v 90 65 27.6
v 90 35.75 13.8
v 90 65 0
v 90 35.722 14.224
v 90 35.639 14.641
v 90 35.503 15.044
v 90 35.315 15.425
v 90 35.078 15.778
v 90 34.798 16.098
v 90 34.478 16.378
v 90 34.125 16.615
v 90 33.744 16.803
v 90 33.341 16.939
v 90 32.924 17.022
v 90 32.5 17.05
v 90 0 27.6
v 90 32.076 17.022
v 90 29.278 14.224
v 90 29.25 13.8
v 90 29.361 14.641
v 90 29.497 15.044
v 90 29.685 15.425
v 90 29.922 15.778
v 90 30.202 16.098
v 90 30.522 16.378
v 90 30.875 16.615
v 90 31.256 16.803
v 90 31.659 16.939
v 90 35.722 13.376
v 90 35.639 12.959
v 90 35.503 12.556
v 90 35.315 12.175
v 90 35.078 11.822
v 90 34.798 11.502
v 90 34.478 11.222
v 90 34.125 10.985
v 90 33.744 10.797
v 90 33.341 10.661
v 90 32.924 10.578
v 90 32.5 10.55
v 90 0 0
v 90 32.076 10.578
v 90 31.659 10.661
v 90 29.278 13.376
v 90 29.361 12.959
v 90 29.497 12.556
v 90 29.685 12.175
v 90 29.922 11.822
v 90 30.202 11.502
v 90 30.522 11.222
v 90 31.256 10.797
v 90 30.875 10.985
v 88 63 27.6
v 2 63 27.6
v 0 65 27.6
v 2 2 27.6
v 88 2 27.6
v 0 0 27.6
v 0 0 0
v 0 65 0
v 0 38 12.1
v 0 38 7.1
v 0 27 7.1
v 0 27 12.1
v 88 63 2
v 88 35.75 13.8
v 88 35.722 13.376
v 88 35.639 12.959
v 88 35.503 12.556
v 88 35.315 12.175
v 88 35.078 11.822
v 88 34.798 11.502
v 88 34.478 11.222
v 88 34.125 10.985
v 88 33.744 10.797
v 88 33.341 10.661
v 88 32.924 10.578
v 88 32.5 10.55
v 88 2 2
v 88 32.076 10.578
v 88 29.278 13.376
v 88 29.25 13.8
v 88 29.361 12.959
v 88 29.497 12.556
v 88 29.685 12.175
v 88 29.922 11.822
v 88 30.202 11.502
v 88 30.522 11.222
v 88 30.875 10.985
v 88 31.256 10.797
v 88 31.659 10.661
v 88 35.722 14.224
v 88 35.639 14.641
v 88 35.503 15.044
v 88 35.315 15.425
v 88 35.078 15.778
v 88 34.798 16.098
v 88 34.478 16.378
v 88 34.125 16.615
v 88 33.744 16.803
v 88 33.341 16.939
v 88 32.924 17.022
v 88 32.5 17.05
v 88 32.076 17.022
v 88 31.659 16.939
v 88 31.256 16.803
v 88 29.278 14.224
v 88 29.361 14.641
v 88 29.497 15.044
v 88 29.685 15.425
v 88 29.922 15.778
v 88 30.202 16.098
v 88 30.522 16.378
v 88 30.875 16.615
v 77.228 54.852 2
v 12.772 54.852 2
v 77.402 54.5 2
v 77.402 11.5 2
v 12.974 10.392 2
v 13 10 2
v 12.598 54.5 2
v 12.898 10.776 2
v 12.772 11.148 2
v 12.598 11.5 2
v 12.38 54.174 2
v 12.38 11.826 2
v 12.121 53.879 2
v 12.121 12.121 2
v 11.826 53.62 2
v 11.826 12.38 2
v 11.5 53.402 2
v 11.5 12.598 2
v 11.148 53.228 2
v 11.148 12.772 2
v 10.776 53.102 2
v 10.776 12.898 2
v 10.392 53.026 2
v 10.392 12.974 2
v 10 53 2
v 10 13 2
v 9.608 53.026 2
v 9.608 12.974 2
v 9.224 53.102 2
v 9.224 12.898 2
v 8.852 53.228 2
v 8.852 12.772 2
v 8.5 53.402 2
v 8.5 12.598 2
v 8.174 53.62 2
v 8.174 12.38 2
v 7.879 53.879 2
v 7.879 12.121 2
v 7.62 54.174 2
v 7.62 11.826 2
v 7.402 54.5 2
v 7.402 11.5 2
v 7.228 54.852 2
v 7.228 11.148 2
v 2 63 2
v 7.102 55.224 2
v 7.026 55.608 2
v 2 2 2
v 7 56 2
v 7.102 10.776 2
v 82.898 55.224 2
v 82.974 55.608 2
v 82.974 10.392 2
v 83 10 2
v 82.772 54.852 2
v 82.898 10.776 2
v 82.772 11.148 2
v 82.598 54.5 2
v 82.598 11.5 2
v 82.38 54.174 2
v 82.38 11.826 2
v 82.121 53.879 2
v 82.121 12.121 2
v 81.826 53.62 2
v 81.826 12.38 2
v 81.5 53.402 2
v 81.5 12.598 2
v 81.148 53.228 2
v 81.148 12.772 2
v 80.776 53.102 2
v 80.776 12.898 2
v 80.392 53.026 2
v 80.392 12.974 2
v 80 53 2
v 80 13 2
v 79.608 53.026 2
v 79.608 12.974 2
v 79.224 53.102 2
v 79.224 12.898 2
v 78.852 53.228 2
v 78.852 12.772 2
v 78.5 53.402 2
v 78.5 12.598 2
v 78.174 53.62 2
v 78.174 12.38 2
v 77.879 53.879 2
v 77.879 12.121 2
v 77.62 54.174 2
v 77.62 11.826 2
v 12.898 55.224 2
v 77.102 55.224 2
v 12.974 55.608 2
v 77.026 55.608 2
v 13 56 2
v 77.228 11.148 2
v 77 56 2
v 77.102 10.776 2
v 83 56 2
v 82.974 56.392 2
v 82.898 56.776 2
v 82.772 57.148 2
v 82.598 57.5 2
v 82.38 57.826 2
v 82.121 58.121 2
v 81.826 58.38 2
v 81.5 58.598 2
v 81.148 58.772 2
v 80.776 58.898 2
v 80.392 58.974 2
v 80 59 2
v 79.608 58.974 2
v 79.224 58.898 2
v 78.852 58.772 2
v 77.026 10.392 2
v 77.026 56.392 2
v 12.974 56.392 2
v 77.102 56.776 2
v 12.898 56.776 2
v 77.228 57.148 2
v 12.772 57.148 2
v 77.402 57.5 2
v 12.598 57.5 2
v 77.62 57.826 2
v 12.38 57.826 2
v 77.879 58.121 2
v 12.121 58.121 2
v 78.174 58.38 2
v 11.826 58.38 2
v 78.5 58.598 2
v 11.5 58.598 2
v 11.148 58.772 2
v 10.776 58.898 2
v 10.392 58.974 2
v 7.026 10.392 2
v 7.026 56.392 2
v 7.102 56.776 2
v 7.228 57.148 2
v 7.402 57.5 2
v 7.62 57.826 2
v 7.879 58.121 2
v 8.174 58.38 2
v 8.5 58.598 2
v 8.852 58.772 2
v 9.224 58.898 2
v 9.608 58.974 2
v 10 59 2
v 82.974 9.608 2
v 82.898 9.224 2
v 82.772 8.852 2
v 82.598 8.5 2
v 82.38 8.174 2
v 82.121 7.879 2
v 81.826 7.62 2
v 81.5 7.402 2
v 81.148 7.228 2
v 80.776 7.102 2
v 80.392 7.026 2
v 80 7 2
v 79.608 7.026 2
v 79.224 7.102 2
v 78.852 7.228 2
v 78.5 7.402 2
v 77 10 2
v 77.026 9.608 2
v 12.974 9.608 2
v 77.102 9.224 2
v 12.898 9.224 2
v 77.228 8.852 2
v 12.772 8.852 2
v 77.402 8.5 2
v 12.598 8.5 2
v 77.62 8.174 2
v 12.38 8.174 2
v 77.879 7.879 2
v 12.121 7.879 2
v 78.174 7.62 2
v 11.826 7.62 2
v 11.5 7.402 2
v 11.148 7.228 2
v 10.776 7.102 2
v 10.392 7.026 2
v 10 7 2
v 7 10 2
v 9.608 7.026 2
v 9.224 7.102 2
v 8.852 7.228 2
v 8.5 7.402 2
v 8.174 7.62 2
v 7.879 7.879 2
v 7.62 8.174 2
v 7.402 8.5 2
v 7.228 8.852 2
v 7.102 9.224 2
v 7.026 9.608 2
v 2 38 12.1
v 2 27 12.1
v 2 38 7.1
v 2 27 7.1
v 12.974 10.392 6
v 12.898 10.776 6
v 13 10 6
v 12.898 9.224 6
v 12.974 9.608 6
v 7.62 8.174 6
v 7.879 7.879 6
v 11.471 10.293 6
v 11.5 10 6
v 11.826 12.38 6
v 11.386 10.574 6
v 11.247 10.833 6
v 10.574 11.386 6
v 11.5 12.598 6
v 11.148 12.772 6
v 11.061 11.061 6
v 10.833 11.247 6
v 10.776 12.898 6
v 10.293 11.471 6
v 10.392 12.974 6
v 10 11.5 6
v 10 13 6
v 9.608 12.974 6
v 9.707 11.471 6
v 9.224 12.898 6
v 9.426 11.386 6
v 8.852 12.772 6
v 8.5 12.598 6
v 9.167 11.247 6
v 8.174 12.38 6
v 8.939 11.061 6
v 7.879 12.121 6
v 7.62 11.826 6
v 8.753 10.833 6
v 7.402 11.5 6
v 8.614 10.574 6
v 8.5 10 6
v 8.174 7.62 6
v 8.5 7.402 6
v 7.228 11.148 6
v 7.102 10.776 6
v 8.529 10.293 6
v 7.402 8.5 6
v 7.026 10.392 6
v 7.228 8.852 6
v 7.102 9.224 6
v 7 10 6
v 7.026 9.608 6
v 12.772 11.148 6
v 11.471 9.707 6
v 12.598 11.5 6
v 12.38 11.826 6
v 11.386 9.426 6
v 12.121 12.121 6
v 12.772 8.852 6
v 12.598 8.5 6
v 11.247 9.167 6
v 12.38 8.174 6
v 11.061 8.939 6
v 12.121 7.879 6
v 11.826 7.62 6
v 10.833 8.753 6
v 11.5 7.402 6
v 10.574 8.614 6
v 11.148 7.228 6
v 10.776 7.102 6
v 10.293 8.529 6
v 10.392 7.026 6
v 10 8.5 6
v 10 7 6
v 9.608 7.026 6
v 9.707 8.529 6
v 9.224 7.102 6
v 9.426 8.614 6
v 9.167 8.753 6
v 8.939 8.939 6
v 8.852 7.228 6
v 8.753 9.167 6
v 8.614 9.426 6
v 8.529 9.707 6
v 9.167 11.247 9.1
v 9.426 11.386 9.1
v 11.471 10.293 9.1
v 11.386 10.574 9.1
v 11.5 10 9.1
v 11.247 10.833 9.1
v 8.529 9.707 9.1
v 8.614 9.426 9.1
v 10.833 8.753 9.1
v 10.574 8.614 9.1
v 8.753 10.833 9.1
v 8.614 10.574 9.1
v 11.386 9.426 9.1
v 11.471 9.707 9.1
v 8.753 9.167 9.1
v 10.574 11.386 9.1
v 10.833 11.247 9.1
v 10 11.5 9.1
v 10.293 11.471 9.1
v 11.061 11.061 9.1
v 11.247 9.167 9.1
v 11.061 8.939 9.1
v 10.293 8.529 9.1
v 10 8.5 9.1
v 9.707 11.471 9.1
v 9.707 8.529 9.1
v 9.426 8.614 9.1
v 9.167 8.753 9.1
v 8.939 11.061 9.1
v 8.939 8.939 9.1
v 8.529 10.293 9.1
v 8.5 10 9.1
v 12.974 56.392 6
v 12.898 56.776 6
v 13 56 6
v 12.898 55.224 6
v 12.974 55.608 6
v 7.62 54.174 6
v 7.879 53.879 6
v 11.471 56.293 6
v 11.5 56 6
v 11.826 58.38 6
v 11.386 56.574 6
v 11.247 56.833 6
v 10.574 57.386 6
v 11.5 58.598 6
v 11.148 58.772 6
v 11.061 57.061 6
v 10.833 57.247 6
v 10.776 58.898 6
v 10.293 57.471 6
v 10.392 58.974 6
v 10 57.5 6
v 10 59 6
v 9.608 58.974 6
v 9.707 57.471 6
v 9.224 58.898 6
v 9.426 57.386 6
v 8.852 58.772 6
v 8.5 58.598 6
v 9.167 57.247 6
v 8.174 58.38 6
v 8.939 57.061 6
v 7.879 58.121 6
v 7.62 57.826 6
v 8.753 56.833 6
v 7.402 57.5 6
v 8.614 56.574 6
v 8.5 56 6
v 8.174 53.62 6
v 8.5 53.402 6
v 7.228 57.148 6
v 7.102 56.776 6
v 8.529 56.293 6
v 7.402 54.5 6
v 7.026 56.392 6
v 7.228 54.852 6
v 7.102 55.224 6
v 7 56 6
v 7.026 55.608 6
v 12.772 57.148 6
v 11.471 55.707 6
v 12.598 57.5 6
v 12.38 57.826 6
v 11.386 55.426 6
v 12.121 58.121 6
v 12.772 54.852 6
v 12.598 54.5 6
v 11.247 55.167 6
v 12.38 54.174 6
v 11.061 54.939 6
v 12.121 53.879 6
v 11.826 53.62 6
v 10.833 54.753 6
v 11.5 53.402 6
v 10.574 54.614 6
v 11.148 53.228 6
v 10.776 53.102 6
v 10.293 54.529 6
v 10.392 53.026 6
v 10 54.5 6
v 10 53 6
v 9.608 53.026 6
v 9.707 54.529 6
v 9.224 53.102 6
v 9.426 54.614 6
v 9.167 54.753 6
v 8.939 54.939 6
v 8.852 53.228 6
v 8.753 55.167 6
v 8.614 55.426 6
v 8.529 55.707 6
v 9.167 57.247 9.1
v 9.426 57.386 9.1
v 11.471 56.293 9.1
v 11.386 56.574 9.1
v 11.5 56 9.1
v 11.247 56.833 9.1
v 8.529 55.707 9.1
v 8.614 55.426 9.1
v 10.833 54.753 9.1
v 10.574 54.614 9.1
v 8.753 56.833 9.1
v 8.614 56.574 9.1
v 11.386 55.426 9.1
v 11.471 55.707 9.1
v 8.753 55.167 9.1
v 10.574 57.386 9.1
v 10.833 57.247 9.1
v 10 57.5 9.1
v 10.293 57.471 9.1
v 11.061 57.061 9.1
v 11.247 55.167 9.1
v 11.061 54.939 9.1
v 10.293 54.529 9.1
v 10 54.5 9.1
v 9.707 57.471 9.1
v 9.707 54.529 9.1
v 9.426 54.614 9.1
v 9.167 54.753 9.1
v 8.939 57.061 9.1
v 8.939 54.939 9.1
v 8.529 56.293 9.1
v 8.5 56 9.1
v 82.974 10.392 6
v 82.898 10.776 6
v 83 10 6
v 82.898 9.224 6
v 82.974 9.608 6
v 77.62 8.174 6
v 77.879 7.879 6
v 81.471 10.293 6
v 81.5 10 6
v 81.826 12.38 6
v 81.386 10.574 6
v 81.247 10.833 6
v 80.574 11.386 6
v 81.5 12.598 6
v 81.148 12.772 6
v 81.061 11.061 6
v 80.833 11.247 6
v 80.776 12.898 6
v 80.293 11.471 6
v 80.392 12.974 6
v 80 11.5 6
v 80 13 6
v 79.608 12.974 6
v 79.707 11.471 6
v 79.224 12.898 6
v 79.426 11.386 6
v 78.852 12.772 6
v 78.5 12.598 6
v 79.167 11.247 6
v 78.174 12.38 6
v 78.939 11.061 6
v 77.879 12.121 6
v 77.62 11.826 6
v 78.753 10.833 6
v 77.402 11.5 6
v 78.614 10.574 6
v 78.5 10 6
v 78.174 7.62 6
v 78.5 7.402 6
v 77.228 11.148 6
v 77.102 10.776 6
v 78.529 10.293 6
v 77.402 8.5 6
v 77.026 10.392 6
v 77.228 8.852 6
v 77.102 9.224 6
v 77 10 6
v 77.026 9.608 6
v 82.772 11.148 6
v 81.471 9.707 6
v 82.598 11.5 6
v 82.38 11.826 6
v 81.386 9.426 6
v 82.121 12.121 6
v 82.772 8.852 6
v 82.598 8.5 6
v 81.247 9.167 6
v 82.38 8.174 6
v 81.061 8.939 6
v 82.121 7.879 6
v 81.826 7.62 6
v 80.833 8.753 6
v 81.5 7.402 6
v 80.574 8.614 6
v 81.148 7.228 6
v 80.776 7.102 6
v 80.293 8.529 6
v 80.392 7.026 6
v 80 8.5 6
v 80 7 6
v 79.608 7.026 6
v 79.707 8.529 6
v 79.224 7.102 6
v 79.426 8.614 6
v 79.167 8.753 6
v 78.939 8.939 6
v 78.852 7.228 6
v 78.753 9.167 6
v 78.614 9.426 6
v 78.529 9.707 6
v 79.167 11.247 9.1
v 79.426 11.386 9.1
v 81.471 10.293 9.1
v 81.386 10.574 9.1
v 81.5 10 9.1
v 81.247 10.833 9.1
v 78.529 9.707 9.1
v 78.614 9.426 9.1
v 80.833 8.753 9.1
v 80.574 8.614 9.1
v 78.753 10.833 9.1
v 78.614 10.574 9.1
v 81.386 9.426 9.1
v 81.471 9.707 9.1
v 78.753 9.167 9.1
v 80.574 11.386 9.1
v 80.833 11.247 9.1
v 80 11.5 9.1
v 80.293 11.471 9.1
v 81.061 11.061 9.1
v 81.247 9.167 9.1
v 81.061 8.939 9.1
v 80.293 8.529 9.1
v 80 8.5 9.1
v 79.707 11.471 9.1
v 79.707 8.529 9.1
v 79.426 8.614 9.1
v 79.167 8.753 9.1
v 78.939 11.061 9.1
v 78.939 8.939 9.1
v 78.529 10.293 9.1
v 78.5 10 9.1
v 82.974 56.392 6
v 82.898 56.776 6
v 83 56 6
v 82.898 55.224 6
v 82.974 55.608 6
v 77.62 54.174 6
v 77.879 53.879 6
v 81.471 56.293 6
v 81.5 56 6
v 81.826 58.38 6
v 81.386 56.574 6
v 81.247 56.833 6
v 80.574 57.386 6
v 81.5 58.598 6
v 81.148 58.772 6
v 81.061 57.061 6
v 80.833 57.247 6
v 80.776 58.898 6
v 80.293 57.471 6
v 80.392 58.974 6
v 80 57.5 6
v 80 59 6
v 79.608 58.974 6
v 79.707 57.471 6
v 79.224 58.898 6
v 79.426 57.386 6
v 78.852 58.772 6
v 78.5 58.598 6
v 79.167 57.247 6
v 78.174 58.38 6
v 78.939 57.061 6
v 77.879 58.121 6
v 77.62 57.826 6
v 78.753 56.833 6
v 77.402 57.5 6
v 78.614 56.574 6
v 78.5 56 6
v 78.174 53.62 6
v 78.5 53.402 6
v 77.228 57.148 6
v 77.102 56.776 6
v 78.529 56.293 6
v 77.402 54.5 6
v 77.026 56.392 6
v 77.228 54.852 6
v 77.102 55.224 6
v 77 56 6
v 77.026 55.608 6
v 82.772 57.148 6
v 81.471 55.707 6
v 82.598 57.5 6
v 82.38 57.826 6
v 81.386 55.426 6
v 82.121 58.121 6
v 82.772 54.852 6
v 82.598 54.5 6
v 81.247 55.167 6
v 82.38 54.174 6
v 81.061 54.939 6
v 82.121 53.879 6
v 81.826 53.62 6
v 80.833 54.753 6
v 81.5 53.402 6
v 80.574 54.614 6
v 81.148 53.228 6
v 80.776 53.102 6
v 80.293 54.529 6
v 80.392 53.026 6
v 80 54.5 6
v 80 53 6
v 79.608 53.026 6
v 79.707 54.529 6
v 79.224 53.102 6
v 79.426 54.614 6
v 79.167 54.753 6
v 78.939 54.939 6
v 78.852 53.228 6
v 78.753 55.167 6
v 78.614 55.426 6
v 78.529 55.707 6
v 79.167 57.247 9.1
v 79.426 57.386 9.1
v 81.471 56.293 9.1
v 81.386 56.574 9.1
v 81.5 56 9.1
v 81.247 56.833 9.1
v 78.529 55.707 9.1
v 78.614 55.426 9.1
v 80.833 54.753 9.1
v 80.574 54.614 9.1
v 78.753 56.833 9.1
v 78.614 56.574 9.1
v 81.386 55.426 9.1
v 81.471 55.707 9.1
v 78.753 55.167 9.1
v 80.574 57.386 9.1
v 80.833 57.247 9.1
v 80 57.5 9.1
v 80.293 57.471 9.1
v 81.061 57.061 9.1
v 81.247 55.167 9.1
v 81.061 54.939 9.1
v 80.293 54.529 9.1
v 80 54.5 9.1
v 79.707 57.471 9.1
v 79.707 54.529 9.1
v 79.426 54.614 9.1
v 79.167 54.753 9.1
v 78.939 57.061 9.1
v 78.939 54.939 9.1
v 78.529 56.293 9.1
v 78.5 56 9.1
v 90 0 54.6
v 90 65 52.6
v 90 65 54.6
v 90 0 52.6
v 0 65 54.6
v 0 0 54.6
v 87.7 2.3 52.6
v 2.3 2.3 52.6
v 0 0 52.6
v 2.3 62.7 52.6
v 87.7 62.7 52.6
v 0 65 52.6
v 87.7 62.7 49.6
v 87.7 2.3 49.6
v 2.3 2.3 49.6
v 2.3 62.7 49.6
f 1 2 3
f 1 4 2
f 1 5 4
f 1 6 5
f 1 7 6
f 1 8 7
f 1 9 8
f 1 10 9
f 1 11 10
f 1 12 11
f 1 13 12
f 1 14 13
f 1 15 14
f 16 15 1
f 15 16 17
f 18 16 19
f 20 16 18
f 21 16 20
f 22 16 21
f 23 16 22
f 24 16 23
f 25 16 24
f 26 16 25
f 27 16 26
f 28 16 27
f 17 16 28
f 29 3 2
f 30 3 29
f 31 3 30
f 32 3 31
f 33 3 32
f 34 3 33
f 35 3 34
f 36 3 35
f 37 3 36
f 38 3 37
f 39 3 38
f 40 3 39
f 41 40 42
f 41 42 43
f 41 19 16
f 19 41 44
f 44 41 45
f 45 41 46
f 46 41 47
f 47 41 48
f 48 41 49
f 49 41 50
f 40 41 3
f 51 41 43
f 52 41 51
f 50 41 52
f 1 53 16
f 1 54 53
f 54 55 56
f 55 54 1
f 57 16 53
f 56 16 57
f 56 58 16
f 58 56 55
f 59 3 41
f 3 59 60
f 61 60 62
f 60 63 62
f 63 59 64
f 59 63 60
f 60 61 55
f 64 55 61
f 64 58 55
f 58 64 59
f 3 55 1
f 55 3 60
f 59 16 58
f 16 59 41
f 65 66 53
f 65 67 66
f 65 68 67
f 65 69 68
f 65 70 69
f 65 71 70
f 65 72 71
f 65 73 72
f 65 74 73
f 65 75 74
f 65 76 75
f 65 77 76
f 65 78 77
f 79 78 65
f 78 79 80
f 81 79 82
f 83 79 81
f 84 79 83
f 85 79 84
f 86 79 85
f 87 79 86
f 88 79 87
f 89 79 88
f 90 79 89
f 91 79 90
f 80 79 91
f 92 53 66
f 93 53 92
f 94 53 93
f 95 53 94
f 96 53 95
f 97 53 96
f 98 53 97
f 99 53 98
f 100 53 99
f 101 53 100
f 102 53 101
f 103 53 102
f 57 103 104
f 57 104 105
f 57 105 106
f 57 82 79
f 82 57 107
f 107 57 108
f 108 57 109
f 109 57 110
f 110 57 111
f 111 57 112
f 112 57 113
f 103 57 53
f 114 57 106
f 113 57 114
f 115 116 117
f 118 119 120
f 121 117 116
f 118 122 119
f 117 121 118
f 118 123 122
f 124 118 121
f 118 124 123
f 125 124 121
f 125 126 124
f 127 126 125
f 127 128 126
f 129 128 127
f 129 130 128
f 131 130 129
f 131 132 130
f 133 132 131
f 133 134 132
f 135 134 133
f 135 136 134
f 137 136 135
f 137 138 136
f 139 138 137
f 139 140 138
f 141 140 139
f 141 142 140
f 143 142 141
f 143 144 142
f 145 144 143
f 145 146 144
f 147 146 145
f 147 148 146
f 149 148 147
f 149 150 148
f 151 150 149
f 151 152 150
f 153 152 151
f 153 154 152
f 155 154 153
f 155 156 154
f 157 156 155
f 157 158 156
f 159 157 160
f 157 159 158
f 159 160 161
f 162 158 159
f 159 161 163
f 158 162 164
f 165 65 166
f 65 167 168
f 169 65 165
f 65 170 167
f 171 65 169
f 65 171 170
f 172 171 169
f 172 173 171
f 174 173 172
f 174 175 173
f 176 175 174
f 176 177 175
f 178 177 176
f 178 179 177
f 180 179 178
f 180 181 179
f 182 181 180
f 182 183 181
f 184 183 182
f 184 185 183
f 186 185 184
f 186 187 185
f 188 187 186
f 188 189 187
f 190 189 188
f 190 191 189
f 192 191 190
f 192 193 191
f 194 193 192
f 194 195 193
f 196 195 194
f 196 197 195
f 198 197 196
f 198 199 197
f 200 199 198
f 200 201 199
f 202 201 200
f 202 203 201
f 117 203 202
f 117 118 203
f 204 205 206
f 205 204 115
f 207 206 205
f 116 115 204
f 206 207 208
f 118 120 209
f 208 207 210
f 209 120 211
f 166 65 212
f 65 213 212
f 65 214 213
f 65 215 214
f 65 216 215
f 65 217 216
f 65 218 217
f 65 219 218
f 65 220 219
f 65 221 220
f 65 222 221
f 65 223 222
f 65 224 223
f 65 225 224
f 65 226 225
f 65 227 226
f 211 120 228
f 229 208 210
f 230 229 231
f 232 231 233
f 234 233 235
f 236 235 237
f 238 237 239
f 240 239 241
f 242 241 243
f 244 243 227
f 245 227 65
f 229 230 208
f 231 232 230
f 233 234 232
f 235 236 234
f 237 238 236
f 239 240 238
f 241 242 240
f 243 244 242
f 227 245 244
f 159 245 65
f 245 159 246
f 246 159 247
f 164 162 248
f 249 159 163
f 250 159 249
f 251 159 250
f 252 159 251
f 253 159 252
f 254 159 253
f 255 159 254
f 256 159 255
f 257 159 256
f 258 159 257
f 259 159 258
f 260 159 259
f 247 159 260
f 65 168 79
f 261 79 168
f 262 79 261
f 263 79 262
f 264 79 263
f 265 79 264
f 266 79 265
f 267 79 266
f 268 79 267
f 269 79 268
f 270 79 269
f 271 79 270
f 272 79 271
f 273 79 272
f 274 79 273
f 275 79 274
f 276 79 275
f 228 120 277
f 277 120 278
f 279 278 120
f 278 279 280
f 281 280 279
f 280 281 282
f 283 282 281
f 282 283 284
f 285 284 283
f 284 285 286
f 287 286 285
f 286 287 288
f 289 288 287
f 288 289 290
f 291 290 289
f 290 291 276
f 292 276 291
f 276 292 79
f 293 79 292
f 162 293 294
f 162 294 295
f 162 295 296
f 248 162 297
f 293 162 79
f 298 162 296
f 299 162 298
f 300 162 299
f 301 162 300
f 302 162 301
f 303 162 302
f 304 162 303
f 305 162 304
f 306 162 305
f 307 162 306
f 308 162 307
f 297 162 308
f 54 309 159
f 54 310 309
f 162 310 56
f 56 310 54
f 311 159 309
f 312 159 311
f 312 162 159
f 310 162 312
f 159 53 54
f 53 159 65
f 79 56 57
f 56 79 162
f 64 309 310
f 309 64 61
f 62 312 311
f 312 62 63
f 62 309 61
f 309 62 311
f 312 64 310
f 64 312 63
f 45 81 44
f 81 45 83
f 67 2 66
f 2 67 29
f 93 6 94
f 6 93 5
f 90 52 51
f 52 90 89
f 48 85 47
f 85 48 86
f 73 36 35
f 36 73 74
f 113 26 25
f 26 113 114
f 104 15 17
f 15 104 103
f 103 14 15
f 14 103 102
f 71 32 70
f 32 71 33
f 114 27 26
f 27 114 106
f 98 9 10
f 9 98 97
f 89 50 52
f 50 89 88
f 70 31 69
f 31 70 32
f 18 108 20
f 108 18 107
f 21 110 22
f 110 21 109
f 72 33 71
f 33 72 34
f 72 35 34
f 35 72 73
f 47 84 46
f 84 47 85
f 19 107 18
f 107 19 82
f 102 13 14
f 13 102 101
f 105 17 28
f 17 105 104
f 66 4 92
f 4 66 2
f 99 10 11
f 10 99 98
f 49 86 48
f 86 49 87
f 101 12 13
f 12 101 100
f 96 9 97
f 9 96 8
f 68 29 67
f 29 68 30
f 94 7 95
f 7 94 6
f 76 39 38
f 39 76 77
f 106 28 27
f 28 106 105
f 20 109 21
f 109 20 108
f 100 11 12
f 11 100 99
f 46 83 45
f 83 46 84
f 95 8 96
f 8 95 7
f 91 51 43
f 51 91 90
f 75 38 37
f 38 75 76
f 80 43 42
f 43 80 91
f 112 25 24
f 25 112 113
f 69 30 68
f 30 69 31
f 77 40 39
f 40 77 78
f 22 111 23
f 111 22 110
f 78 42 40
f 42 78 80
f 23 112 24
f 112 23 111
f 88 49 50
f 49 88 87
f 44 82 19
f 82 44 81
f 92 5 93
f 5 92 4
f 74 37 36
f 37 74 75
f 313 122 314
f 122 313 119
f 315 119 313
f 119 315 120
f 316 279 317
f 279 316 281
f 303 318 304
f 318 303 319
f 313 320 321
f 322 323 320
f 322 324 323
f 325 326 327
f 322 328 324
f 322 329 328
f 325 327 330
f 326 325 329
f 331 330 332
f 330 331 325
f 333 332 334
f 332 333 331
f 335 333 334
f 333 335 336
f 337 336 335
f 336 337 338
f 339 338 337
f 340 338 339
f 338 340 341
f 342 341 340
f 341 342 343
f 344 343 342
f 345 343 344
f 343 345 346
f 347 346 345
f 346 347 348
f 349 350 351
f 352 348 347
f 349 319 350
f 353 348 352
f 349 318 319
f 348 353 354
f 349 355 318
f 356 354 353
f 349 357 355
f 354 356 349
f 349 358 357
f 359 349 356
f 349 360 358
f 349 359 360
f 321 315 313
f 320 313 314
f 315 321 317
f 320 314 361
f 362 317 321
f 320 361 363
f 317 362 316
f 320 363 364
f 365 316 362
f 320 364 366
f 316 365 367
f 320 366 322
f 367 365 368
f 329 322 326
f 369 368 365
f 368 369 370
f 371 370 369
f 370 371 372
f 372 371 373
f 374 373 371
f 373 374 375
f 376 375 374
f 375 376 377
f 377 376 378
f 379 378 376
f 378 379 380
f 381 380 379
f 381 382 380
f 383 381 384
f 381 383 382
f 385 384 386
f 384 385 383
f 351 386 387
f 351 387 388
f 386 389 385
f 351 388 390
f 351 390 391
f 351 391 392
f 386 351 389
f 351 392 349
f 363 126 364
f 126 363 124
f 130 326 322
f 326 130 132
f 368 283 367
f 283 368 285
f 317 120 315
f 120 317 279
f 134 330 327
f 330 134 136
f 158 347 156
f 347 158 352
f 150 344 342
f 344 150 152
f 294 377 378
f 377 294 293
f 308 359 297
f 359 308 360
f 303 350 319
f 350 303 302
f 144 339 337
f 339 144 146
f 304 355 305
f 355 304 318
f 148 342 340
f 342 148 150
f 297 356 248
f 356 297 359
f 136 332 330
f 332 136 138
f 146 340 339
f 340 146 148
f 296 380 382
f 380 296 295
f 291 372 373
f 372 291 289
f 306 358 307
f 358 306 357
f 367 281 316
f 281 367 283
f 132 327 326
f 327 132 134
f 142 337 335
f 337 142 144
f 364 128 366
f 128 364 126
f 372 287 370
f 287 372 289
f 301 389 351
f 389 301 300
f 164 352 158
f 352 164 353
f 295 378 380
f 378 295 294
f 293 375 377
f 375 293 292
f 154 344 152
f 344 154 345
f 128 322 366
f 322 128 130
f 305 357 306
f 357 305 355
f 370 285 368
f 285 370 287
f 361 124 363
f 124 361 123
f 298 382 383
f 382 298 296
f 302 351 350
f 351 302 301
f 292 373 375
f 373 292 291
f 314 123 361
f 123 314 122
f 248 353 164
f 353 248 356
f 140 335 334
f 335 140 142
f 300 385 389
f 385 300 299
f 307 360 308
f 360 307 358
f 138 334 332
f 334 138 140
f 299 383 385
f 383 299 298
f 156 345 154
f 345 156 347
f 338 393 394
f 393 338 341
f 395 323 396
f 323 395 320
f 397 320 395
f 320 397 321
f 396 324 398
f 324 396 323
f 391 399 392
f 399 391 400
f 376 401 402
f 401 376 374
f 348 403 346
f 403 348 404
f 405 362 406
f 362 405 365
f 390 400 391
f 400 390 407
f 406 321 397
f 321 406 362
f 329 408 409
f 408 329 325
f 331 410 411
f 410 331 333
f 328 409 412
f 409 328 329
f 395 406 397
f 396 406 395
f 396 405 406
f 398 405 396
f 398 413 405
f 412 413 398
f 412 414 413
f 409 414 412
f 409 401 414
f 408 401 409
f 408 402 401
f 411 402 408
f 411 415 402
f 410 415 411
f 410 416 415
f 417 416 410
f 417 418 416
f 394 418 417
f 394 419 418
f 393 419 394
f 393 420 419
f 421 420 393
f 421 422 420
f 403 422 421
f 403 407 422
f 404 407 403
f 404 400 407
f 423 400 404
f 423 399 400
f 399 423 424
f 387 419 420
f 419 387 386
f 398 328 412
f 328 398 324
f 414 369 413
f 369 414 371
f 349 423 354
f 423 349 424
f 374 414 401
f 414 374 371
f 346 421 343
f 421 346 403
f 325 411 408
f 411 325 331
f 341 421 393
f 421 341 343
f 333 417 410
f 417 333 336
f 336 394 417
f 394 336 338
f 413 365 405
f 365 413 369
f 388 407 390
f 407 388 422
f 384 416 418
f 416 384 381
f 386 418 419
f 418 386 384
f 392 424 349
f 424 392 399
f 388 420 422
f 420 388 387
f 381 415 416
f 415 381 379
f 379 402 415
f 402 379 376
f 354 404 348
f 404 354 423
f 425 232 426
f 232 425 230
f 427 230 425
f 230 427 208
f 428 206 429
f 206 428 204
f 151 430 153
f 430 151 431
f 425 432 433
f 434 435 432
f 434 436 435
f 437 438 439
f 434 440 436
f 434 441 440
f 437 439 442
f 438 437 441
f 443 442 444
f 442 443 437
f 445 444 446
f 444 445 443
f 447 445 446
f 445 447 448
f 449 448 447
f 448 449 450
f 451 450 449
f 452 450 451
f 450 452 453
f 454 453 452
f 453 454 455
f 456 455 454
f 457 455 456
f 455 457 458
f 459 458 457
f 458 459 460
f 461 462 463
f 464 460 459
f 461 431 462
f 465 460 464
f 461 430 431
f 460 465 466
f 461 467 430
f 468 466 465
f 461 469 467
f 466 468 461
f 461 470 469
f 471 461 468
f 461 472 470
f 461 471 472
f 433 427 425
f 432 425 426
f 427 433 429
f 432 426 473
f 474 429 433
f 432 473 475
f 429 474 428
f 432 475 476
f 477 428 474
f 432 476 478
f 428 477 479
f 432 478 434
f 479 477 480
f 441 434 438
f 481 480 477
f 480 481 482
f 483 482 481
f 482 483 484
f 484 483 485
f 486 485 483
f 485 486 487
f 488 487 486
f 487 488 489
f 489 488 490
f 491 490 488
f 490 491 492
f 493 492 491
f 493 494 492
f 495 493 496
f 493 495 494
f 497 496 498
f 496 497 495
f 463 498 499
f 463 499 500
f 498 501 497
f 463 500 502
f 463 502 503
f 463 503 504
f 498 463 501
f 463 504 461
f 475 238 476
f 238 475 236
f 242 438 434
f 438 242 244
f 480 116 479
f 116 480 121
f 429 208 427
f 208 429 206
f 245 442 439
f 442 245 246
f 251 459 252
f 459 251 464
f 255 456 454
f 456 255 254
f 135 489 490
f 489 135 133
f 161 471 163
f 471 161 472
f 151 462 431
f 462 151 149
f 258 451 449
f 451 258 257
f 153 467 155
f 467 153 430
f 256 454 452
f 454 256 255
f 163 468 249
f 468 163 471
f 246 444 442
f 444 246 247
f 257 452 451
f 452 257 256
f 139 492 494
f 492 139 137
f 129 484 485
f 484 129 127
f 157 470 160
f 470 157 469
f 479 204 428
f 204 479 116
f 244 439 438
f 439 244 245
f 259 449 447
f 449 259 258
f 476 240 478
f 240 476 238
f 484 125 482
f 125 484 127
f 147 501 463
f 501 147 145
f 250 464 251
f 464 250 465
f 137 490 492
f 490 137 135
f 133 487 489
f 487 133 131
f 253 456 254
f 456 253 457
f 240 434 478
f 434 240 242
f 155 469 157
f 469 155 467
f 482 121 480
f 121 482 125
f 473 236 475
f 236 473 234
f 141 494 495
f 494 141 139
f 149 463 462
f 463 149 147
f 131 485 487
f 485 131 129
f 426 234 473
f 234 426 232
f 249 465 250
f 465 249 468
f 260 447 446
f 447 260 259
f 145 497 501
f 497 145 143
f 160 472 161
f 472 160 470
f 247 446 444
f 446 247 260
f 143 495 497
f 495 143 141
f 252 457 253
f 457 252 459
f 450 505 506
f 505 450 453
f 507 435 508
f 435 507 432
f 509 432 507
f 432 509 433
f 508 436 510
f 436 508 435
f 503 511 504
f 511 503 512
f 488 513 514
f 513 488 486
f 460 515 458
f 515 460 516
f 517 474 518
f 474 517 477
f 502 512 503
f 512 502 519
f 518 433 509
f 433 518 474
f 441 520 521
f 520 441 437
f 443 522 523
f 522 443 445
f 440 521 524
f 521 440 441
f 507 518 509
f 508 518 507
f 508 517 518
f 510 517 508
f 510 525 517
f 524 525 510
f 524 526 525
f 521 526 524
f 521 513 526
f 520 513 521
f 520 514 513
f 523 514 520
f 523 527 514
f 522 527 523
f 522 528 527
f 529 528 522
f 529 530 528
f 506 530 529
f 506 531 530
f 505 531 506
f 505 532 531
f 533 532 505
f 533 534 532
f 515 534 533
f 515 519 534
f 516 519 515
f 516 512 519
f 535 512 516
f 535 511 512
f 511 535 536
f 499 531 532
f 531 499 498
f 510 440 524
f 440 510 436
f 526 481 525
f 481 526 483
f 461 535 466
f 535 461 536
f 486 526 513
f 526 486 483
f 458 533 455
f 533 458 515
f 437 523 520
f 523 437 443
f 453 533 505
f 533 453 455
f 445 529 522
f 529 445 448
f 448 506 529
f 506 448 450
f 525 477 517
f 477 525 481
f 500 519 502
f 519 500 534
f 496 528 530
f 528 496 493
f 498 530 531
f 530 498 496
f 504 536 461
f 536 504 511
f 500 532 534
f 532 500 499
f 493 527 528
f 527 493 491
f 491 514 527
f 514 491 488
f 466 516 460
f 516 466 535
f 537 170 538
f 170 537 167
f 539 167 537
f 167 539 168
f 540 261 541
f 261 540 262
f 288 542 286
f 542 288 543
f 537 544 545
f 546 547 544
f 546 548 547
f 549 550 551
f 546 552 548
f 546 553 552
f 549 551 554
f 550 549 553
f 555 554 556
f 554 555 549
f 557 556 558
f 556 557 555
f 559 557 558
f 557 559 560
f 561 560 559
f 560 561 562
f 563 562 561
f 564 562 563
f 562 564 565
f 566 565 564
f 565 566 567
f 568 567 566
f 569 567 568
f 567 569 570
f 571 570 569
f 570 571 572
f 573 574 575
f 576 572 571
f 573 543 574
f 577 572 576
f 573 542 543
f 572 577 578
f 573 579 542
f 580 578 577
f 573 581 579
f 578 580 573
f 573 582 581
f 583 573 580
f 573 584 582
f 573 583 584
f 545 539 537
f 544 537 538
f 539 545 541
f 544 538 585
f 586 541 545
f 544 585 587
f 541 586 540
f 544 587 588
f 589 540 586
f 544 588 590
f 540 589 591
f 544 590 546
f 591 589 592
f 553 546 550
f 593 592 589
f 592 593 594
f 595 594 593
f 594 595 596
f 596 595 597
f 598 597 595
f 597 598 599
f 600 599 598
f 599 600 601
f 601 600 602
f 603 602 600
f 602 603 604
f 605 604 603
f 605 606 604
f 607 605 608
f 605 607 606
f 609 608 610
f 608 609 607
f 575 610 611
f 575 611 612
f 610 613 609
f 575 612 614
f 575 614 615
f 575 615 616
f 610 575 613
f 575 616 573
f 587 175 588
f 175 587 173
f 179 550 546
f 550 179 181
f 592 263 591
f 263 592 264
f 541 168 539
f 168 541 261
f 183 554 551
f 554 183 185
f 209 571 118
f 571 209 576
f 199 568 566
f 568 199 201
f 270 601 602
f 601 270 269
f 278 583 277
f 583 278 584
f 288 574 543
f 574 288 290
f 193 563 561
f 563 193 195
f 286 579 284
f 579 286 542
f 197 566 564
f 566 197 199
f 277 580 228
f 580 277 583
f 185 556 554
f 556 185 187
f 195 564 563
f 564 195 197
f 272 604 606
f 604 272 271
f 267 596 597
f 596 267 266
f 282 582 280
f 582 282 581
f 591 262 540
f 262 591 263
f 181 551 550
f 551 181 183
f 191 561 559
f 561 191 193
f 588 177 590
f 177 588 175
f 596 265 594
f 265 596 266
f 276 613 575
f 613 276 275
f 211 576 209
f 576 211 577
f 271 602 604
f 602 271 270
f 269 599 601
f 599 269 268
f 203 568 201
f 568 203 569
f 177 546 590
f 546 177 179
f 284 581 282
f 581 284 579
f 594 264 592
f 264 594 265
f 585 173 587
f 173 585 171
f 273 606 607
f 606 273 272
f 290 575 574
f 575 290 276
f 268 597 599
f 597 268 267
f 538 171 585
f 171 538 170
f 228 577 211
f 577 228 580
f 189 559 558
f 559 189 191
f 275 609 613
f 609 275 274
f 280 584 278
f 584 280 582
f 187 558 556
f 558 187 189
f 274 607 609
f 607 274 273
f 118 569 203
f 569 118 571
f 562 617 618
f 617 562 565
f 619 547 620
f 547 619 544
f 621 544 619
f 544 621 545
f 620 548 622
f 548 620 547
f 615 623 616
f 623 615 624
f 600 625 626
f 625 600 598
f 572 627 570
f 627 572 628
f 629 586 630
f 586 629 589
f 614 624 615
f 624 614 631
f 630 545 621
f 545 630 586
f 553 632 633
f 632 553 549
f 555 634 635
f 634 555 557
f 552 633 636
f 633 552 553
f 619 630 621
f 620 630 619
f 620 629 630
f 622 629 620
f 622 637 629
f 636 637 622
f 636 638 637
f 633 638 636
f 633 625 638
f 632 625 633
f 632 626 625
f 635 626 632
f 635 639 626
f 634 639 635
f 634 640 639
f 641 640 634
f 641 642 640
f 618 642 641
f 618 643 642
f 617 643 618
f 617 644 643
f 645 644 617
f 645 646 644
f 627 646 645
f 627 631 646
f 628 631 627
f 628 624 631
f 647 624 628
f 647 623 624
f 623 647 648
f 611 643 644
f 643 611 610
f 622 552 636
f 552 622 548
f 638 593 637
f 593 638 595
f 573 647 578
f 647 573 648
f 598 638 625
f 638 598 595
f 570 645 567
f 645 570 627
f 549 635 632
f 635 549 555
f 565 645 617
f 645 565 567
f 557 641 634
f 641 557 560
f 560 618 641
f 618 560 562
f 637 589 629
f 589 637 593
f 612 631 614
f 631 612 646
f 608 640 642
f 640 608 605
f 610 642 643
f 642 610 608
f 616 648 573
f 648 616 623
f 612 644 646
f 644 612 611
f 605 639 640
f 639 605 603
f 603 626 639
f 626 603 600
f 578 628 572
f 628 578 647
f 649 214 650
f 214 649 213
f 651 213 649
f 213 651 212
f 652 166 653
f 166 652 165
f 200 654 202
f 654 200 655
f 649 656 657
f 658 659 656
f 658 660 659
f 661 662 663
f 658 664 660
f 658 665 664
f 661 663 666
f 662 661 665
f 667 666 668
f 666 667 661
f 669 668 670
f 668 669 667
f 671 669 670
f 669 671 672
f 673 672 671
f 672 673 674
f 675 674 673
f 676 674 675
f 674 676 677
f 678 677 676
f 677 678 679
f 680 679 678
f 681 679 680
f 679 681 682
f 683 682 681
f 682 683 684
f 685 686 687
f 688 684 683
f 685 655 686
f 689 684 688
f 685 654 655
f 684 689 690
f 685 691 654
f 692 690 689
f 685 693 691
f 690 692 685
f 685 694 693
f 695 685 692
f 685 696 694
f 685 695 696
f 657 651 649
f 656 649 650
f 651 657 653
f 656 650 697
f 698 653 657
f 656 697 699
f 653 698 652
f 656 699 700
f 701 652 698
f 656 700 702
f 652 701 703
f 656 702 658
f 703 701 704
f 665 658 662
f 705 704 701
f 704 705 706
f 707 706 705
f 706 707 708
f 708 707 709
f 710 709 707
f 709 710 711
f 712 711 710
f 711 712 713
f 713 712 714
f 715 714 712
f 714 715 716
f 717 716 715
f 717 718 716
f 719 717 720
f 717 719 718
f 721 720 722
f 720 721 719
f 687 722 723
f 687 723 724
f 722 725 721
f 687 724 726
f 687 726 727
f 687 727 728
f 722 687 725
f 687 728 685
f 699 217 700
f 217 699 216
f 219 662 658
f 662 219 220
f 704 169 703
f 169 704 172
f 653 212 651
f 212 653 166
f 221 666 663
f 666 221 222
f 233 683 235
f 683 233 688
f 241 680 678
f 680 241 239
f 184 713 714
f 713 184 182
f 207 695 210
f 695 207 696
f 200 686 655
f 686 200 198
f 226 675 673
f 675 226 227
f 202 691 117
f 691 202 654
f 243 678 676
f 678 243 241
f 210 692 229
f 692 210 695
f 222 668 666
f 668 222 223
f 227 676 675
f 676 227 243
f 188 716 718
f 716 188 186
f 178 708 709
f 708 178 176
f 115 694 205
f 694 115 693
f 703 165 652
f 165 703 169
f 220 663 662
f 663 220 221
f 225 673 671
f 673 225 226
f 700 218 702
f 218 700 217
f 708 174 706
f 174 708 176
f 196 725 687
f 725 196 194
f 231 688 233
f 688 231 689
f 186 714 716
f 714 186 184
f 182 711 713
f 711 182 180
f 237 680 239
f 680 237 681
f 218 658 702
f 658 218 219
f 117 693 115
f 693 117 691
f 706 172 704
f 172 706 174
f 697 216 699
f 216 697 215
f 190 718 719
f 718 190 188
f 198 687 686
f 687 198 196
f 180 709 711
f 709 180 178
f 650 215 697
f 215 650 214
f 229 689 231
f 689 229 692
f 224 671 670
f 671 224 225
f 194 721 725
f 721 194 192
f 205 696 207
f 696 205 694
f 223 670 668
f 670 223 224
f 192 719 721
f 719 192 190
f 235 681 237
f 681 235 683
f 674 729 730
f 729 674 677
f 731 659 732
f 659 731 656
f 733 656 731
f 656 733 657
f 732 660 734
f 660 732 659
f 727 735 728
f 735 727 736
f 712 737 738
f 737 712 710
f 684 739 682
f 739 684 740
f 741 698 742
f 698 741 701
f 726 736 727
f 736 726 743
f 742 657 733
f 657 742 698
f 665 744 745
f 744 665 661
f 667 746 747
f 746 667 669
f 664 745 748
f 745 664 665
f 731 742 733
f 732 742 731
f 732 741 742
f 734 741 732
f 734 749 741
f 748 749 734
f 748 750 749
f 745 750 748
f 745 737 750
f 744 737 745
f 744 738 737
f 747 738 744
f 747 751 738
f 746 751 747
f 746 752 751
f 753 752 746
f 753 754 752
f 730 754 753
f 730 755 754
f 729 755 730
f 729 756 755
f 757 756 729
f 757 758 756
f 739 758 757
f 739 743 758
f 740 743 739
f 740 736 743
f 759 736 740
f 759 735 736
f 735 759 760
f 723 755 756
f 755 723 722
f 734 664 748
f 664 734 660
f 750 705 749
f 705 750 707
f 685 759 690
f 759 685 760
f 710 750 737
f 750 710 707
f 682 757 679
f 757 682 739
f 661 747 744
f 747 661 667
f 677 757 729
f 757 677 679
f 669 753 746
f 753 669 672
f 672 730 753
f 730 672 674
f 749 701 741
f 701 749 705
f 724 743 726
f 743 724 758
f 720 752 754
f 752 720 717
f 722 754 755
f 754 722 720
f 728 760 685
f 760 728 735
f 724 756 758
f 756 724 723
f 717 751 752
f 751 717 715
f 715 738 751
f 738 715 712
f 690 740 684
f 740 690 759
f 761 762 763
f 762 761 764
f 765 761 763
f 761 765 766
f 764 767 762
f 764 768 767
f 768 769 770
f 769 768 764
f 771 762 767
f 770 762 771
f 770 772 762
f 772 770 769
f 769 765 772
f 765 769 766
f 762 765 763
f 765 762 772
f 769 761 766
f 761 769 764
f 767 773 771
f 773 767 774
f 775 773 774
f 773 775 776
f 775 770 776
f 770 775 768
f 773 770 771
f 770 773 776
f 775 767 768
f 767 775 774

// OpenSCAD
// =============================================================
//  Boîtier paramétrique pour la carte mère lora169
//
//  PCB 80 × 55 mm (mesuré depuis hardware/lora169.kicad_pcb).
//  4 trous M3 aux coins : (5,5) (75,5) (5,51) (75,51) en repère PCB.
//  USB-C XIAO en bord gauche, à Y=27,5 du PCB.
//  SMA bulkhead centré sur la face droite du boîtier.
//
//  Système de fermeture : couvercle plat avec un rebord intérieur
//  qui s'engage par friction dans le creux du boîtier (comme un
//  couvercle de bocal). Pas de vis, pas de clip.
// =============================================================

// ---------- Paramètres ajustables ----------

// Dimensions PCB carte mère (mesurées dans KiCad)
pcb_width  = 80;
pcb_height = 55;
pcb_thickness = 1.6;

// Trous M3 du PCB (positions relatives au coin bas-gauche du PCB)
hole_offset_x        = 5;   // X depuis le bord gauche/droit
hole_offset_y_top    = 5;   // Y depuis le bord HAUT
hole_offset_y_bottom = 4;   // Y depuis le bord BAS (asymétrie : J2 broche 11 trop proche)

// Hauteur libre nécessaire au-dessus du PCB pour breakout E22 + module enfiché
breakout_clearance = 20;

// Position de l'USB-C (centre, depuis le coin bas-gauche du PCB)
usb_pos_y = 27.5;     // alignement Y avec le centre du XIAO
usb_cutout_w = 11;    // largeur découpe (USB-C ~9 mm + jeu)
usb_cutout_h = 5;     // hauteur découpe

// SMA bulkhead — centré sur la face droite
sma_diameter = 6.5;

// Épaisseurs
wall_thickness  = 2;
floor_thickness = 2;
lid_thickness   = 2;
inner_margin    = 3;  // jeu autour du PCB

// Piliers de centrage du PCB (2 étages, sans vis)
pillar_d_lower = 6;   // Ø étage bas (épaulement du PCB)
pillar_h_lower = 4;   // hauteur étage bas
pillar_d_upper = 3;   // Ø étage haut (passe dans le trou Ø 3,2 du PCB)
pillar_h_above_pcb = 1.5;  // dépassement de la partie fine au-dessus du PCB

// Couvercle (rebord intérieur d'engagement par friction)
lid_lip_height    = 3;     // hauteur du rebord descendant dans le boîtier
lid_lip_clearance = 0.3;   // jeu du rebord avec les parois (impression 3D)

// Mode d'affichage : "box" | "lid" | "assembled" | "exploded"
show_mode = "exploded";

// ---------- Calculs internes ----------

inner_width  = pcb_width + 2 * inner_margin;
inner_height = pcb_height + 2 * inner_margin;
inner_depth  = pillar_h_lower + pcb_thickness + breakout_clearance;

outer_width  = inner_width + 2 * wall_thickness;
outer_height = inner_height + 2 * wall_thickness;
outer_depth  = inner_depth + floor_thickness;

pcb_x = wall_thickness + inner_margin;
pcb_y = wall_thickness + inner_margin;
pcb_z = floor_thickness + pillar_h_lower;

// ---------- Modules ----------

module pillar() {
    h_top = pillar_h_lower + pcb_thickness + pillar_h_above_pcb;
    union() {
        cylinder(h = pillar_h_lower, d = pillar_d_lower, $fn = 48);
        cylinder(h = h_top, d = pillar_d_upper, $fn = 32);
    }
}

module pillars() {
    for (px = [hole_offset_x, pcb_width - hole_offset_x])
        for (py = [hole_offset_y_top, pcb_height - hole_offset_y_bottom])
            translate([pcb_x + px, pcb_y + py, floor_thickness])
                pillar();
}

// Découpe USB-C dans la paroi gauche (X = 0)
module usb_cutout() {
    translate([
        -1,
        pcb_y + usb_pos_y - usb_cutout_w / 2,
        pcb_z + pcb_thickness - 0.5
    ])
        cube([wall_thickness + 2, usb_cutout_w, usb_cutout_h]);
}

// Trou SMA dans la paroi droite — centré
module sma_hole() {
    translate([outer_width + 1, outer_height / 2, outer_depth / 2])
        rotate([0, -90, 0])
            cylinder(h = wall_thickness + 2, d = sma_diameter, $fn = 48);
}

// Boîtier (cuvette ouverte sur le dessus)
module box() {
    difference() {
        cube([outer_width, outer_height, outer_depth]);

        // Creux intérieur
        translate([wall_thickness, wall_thickness, floor_thickness])
            cube([inner_width, inner_height, inner_depth + 1]);

        usb_cutout();
        sma_hole();
    }
    pillars();
}

// Couvercle plat avec rebord intérieur d'engagement par friction
module lid() {
    union() {
        // Plaque supérieure : couvre toute la surface du boîtier
        cube([outer_width, outer_height, lid_thickness]);

        // Rebord intérieur qui descend dans le creux par friction
        translate([
            wall_thickness + lid_lip_clearance,
            wall_thickness + lid_lip_clearance,
            -lid_lip_height
        ])
            cube([
                inner_width - 2 * lid_lip_clearance,
                inner_height - 2 * lid_lip_clearance,
                lid_lip_height
            ]);
    }
}

// ---------- Affichage ----------
if (show_mode == "box") {
    box();
}
else if (show_mode == "lid") {
    lid();
}
else if (show_mode == "assembled") {
    box();
    translate([0, 0, outer_depth])
        lid();
}
else if (show_mode == "exploded") {
    box();
    translate([0, 0, outer_depth + 25])
        lid();
}
